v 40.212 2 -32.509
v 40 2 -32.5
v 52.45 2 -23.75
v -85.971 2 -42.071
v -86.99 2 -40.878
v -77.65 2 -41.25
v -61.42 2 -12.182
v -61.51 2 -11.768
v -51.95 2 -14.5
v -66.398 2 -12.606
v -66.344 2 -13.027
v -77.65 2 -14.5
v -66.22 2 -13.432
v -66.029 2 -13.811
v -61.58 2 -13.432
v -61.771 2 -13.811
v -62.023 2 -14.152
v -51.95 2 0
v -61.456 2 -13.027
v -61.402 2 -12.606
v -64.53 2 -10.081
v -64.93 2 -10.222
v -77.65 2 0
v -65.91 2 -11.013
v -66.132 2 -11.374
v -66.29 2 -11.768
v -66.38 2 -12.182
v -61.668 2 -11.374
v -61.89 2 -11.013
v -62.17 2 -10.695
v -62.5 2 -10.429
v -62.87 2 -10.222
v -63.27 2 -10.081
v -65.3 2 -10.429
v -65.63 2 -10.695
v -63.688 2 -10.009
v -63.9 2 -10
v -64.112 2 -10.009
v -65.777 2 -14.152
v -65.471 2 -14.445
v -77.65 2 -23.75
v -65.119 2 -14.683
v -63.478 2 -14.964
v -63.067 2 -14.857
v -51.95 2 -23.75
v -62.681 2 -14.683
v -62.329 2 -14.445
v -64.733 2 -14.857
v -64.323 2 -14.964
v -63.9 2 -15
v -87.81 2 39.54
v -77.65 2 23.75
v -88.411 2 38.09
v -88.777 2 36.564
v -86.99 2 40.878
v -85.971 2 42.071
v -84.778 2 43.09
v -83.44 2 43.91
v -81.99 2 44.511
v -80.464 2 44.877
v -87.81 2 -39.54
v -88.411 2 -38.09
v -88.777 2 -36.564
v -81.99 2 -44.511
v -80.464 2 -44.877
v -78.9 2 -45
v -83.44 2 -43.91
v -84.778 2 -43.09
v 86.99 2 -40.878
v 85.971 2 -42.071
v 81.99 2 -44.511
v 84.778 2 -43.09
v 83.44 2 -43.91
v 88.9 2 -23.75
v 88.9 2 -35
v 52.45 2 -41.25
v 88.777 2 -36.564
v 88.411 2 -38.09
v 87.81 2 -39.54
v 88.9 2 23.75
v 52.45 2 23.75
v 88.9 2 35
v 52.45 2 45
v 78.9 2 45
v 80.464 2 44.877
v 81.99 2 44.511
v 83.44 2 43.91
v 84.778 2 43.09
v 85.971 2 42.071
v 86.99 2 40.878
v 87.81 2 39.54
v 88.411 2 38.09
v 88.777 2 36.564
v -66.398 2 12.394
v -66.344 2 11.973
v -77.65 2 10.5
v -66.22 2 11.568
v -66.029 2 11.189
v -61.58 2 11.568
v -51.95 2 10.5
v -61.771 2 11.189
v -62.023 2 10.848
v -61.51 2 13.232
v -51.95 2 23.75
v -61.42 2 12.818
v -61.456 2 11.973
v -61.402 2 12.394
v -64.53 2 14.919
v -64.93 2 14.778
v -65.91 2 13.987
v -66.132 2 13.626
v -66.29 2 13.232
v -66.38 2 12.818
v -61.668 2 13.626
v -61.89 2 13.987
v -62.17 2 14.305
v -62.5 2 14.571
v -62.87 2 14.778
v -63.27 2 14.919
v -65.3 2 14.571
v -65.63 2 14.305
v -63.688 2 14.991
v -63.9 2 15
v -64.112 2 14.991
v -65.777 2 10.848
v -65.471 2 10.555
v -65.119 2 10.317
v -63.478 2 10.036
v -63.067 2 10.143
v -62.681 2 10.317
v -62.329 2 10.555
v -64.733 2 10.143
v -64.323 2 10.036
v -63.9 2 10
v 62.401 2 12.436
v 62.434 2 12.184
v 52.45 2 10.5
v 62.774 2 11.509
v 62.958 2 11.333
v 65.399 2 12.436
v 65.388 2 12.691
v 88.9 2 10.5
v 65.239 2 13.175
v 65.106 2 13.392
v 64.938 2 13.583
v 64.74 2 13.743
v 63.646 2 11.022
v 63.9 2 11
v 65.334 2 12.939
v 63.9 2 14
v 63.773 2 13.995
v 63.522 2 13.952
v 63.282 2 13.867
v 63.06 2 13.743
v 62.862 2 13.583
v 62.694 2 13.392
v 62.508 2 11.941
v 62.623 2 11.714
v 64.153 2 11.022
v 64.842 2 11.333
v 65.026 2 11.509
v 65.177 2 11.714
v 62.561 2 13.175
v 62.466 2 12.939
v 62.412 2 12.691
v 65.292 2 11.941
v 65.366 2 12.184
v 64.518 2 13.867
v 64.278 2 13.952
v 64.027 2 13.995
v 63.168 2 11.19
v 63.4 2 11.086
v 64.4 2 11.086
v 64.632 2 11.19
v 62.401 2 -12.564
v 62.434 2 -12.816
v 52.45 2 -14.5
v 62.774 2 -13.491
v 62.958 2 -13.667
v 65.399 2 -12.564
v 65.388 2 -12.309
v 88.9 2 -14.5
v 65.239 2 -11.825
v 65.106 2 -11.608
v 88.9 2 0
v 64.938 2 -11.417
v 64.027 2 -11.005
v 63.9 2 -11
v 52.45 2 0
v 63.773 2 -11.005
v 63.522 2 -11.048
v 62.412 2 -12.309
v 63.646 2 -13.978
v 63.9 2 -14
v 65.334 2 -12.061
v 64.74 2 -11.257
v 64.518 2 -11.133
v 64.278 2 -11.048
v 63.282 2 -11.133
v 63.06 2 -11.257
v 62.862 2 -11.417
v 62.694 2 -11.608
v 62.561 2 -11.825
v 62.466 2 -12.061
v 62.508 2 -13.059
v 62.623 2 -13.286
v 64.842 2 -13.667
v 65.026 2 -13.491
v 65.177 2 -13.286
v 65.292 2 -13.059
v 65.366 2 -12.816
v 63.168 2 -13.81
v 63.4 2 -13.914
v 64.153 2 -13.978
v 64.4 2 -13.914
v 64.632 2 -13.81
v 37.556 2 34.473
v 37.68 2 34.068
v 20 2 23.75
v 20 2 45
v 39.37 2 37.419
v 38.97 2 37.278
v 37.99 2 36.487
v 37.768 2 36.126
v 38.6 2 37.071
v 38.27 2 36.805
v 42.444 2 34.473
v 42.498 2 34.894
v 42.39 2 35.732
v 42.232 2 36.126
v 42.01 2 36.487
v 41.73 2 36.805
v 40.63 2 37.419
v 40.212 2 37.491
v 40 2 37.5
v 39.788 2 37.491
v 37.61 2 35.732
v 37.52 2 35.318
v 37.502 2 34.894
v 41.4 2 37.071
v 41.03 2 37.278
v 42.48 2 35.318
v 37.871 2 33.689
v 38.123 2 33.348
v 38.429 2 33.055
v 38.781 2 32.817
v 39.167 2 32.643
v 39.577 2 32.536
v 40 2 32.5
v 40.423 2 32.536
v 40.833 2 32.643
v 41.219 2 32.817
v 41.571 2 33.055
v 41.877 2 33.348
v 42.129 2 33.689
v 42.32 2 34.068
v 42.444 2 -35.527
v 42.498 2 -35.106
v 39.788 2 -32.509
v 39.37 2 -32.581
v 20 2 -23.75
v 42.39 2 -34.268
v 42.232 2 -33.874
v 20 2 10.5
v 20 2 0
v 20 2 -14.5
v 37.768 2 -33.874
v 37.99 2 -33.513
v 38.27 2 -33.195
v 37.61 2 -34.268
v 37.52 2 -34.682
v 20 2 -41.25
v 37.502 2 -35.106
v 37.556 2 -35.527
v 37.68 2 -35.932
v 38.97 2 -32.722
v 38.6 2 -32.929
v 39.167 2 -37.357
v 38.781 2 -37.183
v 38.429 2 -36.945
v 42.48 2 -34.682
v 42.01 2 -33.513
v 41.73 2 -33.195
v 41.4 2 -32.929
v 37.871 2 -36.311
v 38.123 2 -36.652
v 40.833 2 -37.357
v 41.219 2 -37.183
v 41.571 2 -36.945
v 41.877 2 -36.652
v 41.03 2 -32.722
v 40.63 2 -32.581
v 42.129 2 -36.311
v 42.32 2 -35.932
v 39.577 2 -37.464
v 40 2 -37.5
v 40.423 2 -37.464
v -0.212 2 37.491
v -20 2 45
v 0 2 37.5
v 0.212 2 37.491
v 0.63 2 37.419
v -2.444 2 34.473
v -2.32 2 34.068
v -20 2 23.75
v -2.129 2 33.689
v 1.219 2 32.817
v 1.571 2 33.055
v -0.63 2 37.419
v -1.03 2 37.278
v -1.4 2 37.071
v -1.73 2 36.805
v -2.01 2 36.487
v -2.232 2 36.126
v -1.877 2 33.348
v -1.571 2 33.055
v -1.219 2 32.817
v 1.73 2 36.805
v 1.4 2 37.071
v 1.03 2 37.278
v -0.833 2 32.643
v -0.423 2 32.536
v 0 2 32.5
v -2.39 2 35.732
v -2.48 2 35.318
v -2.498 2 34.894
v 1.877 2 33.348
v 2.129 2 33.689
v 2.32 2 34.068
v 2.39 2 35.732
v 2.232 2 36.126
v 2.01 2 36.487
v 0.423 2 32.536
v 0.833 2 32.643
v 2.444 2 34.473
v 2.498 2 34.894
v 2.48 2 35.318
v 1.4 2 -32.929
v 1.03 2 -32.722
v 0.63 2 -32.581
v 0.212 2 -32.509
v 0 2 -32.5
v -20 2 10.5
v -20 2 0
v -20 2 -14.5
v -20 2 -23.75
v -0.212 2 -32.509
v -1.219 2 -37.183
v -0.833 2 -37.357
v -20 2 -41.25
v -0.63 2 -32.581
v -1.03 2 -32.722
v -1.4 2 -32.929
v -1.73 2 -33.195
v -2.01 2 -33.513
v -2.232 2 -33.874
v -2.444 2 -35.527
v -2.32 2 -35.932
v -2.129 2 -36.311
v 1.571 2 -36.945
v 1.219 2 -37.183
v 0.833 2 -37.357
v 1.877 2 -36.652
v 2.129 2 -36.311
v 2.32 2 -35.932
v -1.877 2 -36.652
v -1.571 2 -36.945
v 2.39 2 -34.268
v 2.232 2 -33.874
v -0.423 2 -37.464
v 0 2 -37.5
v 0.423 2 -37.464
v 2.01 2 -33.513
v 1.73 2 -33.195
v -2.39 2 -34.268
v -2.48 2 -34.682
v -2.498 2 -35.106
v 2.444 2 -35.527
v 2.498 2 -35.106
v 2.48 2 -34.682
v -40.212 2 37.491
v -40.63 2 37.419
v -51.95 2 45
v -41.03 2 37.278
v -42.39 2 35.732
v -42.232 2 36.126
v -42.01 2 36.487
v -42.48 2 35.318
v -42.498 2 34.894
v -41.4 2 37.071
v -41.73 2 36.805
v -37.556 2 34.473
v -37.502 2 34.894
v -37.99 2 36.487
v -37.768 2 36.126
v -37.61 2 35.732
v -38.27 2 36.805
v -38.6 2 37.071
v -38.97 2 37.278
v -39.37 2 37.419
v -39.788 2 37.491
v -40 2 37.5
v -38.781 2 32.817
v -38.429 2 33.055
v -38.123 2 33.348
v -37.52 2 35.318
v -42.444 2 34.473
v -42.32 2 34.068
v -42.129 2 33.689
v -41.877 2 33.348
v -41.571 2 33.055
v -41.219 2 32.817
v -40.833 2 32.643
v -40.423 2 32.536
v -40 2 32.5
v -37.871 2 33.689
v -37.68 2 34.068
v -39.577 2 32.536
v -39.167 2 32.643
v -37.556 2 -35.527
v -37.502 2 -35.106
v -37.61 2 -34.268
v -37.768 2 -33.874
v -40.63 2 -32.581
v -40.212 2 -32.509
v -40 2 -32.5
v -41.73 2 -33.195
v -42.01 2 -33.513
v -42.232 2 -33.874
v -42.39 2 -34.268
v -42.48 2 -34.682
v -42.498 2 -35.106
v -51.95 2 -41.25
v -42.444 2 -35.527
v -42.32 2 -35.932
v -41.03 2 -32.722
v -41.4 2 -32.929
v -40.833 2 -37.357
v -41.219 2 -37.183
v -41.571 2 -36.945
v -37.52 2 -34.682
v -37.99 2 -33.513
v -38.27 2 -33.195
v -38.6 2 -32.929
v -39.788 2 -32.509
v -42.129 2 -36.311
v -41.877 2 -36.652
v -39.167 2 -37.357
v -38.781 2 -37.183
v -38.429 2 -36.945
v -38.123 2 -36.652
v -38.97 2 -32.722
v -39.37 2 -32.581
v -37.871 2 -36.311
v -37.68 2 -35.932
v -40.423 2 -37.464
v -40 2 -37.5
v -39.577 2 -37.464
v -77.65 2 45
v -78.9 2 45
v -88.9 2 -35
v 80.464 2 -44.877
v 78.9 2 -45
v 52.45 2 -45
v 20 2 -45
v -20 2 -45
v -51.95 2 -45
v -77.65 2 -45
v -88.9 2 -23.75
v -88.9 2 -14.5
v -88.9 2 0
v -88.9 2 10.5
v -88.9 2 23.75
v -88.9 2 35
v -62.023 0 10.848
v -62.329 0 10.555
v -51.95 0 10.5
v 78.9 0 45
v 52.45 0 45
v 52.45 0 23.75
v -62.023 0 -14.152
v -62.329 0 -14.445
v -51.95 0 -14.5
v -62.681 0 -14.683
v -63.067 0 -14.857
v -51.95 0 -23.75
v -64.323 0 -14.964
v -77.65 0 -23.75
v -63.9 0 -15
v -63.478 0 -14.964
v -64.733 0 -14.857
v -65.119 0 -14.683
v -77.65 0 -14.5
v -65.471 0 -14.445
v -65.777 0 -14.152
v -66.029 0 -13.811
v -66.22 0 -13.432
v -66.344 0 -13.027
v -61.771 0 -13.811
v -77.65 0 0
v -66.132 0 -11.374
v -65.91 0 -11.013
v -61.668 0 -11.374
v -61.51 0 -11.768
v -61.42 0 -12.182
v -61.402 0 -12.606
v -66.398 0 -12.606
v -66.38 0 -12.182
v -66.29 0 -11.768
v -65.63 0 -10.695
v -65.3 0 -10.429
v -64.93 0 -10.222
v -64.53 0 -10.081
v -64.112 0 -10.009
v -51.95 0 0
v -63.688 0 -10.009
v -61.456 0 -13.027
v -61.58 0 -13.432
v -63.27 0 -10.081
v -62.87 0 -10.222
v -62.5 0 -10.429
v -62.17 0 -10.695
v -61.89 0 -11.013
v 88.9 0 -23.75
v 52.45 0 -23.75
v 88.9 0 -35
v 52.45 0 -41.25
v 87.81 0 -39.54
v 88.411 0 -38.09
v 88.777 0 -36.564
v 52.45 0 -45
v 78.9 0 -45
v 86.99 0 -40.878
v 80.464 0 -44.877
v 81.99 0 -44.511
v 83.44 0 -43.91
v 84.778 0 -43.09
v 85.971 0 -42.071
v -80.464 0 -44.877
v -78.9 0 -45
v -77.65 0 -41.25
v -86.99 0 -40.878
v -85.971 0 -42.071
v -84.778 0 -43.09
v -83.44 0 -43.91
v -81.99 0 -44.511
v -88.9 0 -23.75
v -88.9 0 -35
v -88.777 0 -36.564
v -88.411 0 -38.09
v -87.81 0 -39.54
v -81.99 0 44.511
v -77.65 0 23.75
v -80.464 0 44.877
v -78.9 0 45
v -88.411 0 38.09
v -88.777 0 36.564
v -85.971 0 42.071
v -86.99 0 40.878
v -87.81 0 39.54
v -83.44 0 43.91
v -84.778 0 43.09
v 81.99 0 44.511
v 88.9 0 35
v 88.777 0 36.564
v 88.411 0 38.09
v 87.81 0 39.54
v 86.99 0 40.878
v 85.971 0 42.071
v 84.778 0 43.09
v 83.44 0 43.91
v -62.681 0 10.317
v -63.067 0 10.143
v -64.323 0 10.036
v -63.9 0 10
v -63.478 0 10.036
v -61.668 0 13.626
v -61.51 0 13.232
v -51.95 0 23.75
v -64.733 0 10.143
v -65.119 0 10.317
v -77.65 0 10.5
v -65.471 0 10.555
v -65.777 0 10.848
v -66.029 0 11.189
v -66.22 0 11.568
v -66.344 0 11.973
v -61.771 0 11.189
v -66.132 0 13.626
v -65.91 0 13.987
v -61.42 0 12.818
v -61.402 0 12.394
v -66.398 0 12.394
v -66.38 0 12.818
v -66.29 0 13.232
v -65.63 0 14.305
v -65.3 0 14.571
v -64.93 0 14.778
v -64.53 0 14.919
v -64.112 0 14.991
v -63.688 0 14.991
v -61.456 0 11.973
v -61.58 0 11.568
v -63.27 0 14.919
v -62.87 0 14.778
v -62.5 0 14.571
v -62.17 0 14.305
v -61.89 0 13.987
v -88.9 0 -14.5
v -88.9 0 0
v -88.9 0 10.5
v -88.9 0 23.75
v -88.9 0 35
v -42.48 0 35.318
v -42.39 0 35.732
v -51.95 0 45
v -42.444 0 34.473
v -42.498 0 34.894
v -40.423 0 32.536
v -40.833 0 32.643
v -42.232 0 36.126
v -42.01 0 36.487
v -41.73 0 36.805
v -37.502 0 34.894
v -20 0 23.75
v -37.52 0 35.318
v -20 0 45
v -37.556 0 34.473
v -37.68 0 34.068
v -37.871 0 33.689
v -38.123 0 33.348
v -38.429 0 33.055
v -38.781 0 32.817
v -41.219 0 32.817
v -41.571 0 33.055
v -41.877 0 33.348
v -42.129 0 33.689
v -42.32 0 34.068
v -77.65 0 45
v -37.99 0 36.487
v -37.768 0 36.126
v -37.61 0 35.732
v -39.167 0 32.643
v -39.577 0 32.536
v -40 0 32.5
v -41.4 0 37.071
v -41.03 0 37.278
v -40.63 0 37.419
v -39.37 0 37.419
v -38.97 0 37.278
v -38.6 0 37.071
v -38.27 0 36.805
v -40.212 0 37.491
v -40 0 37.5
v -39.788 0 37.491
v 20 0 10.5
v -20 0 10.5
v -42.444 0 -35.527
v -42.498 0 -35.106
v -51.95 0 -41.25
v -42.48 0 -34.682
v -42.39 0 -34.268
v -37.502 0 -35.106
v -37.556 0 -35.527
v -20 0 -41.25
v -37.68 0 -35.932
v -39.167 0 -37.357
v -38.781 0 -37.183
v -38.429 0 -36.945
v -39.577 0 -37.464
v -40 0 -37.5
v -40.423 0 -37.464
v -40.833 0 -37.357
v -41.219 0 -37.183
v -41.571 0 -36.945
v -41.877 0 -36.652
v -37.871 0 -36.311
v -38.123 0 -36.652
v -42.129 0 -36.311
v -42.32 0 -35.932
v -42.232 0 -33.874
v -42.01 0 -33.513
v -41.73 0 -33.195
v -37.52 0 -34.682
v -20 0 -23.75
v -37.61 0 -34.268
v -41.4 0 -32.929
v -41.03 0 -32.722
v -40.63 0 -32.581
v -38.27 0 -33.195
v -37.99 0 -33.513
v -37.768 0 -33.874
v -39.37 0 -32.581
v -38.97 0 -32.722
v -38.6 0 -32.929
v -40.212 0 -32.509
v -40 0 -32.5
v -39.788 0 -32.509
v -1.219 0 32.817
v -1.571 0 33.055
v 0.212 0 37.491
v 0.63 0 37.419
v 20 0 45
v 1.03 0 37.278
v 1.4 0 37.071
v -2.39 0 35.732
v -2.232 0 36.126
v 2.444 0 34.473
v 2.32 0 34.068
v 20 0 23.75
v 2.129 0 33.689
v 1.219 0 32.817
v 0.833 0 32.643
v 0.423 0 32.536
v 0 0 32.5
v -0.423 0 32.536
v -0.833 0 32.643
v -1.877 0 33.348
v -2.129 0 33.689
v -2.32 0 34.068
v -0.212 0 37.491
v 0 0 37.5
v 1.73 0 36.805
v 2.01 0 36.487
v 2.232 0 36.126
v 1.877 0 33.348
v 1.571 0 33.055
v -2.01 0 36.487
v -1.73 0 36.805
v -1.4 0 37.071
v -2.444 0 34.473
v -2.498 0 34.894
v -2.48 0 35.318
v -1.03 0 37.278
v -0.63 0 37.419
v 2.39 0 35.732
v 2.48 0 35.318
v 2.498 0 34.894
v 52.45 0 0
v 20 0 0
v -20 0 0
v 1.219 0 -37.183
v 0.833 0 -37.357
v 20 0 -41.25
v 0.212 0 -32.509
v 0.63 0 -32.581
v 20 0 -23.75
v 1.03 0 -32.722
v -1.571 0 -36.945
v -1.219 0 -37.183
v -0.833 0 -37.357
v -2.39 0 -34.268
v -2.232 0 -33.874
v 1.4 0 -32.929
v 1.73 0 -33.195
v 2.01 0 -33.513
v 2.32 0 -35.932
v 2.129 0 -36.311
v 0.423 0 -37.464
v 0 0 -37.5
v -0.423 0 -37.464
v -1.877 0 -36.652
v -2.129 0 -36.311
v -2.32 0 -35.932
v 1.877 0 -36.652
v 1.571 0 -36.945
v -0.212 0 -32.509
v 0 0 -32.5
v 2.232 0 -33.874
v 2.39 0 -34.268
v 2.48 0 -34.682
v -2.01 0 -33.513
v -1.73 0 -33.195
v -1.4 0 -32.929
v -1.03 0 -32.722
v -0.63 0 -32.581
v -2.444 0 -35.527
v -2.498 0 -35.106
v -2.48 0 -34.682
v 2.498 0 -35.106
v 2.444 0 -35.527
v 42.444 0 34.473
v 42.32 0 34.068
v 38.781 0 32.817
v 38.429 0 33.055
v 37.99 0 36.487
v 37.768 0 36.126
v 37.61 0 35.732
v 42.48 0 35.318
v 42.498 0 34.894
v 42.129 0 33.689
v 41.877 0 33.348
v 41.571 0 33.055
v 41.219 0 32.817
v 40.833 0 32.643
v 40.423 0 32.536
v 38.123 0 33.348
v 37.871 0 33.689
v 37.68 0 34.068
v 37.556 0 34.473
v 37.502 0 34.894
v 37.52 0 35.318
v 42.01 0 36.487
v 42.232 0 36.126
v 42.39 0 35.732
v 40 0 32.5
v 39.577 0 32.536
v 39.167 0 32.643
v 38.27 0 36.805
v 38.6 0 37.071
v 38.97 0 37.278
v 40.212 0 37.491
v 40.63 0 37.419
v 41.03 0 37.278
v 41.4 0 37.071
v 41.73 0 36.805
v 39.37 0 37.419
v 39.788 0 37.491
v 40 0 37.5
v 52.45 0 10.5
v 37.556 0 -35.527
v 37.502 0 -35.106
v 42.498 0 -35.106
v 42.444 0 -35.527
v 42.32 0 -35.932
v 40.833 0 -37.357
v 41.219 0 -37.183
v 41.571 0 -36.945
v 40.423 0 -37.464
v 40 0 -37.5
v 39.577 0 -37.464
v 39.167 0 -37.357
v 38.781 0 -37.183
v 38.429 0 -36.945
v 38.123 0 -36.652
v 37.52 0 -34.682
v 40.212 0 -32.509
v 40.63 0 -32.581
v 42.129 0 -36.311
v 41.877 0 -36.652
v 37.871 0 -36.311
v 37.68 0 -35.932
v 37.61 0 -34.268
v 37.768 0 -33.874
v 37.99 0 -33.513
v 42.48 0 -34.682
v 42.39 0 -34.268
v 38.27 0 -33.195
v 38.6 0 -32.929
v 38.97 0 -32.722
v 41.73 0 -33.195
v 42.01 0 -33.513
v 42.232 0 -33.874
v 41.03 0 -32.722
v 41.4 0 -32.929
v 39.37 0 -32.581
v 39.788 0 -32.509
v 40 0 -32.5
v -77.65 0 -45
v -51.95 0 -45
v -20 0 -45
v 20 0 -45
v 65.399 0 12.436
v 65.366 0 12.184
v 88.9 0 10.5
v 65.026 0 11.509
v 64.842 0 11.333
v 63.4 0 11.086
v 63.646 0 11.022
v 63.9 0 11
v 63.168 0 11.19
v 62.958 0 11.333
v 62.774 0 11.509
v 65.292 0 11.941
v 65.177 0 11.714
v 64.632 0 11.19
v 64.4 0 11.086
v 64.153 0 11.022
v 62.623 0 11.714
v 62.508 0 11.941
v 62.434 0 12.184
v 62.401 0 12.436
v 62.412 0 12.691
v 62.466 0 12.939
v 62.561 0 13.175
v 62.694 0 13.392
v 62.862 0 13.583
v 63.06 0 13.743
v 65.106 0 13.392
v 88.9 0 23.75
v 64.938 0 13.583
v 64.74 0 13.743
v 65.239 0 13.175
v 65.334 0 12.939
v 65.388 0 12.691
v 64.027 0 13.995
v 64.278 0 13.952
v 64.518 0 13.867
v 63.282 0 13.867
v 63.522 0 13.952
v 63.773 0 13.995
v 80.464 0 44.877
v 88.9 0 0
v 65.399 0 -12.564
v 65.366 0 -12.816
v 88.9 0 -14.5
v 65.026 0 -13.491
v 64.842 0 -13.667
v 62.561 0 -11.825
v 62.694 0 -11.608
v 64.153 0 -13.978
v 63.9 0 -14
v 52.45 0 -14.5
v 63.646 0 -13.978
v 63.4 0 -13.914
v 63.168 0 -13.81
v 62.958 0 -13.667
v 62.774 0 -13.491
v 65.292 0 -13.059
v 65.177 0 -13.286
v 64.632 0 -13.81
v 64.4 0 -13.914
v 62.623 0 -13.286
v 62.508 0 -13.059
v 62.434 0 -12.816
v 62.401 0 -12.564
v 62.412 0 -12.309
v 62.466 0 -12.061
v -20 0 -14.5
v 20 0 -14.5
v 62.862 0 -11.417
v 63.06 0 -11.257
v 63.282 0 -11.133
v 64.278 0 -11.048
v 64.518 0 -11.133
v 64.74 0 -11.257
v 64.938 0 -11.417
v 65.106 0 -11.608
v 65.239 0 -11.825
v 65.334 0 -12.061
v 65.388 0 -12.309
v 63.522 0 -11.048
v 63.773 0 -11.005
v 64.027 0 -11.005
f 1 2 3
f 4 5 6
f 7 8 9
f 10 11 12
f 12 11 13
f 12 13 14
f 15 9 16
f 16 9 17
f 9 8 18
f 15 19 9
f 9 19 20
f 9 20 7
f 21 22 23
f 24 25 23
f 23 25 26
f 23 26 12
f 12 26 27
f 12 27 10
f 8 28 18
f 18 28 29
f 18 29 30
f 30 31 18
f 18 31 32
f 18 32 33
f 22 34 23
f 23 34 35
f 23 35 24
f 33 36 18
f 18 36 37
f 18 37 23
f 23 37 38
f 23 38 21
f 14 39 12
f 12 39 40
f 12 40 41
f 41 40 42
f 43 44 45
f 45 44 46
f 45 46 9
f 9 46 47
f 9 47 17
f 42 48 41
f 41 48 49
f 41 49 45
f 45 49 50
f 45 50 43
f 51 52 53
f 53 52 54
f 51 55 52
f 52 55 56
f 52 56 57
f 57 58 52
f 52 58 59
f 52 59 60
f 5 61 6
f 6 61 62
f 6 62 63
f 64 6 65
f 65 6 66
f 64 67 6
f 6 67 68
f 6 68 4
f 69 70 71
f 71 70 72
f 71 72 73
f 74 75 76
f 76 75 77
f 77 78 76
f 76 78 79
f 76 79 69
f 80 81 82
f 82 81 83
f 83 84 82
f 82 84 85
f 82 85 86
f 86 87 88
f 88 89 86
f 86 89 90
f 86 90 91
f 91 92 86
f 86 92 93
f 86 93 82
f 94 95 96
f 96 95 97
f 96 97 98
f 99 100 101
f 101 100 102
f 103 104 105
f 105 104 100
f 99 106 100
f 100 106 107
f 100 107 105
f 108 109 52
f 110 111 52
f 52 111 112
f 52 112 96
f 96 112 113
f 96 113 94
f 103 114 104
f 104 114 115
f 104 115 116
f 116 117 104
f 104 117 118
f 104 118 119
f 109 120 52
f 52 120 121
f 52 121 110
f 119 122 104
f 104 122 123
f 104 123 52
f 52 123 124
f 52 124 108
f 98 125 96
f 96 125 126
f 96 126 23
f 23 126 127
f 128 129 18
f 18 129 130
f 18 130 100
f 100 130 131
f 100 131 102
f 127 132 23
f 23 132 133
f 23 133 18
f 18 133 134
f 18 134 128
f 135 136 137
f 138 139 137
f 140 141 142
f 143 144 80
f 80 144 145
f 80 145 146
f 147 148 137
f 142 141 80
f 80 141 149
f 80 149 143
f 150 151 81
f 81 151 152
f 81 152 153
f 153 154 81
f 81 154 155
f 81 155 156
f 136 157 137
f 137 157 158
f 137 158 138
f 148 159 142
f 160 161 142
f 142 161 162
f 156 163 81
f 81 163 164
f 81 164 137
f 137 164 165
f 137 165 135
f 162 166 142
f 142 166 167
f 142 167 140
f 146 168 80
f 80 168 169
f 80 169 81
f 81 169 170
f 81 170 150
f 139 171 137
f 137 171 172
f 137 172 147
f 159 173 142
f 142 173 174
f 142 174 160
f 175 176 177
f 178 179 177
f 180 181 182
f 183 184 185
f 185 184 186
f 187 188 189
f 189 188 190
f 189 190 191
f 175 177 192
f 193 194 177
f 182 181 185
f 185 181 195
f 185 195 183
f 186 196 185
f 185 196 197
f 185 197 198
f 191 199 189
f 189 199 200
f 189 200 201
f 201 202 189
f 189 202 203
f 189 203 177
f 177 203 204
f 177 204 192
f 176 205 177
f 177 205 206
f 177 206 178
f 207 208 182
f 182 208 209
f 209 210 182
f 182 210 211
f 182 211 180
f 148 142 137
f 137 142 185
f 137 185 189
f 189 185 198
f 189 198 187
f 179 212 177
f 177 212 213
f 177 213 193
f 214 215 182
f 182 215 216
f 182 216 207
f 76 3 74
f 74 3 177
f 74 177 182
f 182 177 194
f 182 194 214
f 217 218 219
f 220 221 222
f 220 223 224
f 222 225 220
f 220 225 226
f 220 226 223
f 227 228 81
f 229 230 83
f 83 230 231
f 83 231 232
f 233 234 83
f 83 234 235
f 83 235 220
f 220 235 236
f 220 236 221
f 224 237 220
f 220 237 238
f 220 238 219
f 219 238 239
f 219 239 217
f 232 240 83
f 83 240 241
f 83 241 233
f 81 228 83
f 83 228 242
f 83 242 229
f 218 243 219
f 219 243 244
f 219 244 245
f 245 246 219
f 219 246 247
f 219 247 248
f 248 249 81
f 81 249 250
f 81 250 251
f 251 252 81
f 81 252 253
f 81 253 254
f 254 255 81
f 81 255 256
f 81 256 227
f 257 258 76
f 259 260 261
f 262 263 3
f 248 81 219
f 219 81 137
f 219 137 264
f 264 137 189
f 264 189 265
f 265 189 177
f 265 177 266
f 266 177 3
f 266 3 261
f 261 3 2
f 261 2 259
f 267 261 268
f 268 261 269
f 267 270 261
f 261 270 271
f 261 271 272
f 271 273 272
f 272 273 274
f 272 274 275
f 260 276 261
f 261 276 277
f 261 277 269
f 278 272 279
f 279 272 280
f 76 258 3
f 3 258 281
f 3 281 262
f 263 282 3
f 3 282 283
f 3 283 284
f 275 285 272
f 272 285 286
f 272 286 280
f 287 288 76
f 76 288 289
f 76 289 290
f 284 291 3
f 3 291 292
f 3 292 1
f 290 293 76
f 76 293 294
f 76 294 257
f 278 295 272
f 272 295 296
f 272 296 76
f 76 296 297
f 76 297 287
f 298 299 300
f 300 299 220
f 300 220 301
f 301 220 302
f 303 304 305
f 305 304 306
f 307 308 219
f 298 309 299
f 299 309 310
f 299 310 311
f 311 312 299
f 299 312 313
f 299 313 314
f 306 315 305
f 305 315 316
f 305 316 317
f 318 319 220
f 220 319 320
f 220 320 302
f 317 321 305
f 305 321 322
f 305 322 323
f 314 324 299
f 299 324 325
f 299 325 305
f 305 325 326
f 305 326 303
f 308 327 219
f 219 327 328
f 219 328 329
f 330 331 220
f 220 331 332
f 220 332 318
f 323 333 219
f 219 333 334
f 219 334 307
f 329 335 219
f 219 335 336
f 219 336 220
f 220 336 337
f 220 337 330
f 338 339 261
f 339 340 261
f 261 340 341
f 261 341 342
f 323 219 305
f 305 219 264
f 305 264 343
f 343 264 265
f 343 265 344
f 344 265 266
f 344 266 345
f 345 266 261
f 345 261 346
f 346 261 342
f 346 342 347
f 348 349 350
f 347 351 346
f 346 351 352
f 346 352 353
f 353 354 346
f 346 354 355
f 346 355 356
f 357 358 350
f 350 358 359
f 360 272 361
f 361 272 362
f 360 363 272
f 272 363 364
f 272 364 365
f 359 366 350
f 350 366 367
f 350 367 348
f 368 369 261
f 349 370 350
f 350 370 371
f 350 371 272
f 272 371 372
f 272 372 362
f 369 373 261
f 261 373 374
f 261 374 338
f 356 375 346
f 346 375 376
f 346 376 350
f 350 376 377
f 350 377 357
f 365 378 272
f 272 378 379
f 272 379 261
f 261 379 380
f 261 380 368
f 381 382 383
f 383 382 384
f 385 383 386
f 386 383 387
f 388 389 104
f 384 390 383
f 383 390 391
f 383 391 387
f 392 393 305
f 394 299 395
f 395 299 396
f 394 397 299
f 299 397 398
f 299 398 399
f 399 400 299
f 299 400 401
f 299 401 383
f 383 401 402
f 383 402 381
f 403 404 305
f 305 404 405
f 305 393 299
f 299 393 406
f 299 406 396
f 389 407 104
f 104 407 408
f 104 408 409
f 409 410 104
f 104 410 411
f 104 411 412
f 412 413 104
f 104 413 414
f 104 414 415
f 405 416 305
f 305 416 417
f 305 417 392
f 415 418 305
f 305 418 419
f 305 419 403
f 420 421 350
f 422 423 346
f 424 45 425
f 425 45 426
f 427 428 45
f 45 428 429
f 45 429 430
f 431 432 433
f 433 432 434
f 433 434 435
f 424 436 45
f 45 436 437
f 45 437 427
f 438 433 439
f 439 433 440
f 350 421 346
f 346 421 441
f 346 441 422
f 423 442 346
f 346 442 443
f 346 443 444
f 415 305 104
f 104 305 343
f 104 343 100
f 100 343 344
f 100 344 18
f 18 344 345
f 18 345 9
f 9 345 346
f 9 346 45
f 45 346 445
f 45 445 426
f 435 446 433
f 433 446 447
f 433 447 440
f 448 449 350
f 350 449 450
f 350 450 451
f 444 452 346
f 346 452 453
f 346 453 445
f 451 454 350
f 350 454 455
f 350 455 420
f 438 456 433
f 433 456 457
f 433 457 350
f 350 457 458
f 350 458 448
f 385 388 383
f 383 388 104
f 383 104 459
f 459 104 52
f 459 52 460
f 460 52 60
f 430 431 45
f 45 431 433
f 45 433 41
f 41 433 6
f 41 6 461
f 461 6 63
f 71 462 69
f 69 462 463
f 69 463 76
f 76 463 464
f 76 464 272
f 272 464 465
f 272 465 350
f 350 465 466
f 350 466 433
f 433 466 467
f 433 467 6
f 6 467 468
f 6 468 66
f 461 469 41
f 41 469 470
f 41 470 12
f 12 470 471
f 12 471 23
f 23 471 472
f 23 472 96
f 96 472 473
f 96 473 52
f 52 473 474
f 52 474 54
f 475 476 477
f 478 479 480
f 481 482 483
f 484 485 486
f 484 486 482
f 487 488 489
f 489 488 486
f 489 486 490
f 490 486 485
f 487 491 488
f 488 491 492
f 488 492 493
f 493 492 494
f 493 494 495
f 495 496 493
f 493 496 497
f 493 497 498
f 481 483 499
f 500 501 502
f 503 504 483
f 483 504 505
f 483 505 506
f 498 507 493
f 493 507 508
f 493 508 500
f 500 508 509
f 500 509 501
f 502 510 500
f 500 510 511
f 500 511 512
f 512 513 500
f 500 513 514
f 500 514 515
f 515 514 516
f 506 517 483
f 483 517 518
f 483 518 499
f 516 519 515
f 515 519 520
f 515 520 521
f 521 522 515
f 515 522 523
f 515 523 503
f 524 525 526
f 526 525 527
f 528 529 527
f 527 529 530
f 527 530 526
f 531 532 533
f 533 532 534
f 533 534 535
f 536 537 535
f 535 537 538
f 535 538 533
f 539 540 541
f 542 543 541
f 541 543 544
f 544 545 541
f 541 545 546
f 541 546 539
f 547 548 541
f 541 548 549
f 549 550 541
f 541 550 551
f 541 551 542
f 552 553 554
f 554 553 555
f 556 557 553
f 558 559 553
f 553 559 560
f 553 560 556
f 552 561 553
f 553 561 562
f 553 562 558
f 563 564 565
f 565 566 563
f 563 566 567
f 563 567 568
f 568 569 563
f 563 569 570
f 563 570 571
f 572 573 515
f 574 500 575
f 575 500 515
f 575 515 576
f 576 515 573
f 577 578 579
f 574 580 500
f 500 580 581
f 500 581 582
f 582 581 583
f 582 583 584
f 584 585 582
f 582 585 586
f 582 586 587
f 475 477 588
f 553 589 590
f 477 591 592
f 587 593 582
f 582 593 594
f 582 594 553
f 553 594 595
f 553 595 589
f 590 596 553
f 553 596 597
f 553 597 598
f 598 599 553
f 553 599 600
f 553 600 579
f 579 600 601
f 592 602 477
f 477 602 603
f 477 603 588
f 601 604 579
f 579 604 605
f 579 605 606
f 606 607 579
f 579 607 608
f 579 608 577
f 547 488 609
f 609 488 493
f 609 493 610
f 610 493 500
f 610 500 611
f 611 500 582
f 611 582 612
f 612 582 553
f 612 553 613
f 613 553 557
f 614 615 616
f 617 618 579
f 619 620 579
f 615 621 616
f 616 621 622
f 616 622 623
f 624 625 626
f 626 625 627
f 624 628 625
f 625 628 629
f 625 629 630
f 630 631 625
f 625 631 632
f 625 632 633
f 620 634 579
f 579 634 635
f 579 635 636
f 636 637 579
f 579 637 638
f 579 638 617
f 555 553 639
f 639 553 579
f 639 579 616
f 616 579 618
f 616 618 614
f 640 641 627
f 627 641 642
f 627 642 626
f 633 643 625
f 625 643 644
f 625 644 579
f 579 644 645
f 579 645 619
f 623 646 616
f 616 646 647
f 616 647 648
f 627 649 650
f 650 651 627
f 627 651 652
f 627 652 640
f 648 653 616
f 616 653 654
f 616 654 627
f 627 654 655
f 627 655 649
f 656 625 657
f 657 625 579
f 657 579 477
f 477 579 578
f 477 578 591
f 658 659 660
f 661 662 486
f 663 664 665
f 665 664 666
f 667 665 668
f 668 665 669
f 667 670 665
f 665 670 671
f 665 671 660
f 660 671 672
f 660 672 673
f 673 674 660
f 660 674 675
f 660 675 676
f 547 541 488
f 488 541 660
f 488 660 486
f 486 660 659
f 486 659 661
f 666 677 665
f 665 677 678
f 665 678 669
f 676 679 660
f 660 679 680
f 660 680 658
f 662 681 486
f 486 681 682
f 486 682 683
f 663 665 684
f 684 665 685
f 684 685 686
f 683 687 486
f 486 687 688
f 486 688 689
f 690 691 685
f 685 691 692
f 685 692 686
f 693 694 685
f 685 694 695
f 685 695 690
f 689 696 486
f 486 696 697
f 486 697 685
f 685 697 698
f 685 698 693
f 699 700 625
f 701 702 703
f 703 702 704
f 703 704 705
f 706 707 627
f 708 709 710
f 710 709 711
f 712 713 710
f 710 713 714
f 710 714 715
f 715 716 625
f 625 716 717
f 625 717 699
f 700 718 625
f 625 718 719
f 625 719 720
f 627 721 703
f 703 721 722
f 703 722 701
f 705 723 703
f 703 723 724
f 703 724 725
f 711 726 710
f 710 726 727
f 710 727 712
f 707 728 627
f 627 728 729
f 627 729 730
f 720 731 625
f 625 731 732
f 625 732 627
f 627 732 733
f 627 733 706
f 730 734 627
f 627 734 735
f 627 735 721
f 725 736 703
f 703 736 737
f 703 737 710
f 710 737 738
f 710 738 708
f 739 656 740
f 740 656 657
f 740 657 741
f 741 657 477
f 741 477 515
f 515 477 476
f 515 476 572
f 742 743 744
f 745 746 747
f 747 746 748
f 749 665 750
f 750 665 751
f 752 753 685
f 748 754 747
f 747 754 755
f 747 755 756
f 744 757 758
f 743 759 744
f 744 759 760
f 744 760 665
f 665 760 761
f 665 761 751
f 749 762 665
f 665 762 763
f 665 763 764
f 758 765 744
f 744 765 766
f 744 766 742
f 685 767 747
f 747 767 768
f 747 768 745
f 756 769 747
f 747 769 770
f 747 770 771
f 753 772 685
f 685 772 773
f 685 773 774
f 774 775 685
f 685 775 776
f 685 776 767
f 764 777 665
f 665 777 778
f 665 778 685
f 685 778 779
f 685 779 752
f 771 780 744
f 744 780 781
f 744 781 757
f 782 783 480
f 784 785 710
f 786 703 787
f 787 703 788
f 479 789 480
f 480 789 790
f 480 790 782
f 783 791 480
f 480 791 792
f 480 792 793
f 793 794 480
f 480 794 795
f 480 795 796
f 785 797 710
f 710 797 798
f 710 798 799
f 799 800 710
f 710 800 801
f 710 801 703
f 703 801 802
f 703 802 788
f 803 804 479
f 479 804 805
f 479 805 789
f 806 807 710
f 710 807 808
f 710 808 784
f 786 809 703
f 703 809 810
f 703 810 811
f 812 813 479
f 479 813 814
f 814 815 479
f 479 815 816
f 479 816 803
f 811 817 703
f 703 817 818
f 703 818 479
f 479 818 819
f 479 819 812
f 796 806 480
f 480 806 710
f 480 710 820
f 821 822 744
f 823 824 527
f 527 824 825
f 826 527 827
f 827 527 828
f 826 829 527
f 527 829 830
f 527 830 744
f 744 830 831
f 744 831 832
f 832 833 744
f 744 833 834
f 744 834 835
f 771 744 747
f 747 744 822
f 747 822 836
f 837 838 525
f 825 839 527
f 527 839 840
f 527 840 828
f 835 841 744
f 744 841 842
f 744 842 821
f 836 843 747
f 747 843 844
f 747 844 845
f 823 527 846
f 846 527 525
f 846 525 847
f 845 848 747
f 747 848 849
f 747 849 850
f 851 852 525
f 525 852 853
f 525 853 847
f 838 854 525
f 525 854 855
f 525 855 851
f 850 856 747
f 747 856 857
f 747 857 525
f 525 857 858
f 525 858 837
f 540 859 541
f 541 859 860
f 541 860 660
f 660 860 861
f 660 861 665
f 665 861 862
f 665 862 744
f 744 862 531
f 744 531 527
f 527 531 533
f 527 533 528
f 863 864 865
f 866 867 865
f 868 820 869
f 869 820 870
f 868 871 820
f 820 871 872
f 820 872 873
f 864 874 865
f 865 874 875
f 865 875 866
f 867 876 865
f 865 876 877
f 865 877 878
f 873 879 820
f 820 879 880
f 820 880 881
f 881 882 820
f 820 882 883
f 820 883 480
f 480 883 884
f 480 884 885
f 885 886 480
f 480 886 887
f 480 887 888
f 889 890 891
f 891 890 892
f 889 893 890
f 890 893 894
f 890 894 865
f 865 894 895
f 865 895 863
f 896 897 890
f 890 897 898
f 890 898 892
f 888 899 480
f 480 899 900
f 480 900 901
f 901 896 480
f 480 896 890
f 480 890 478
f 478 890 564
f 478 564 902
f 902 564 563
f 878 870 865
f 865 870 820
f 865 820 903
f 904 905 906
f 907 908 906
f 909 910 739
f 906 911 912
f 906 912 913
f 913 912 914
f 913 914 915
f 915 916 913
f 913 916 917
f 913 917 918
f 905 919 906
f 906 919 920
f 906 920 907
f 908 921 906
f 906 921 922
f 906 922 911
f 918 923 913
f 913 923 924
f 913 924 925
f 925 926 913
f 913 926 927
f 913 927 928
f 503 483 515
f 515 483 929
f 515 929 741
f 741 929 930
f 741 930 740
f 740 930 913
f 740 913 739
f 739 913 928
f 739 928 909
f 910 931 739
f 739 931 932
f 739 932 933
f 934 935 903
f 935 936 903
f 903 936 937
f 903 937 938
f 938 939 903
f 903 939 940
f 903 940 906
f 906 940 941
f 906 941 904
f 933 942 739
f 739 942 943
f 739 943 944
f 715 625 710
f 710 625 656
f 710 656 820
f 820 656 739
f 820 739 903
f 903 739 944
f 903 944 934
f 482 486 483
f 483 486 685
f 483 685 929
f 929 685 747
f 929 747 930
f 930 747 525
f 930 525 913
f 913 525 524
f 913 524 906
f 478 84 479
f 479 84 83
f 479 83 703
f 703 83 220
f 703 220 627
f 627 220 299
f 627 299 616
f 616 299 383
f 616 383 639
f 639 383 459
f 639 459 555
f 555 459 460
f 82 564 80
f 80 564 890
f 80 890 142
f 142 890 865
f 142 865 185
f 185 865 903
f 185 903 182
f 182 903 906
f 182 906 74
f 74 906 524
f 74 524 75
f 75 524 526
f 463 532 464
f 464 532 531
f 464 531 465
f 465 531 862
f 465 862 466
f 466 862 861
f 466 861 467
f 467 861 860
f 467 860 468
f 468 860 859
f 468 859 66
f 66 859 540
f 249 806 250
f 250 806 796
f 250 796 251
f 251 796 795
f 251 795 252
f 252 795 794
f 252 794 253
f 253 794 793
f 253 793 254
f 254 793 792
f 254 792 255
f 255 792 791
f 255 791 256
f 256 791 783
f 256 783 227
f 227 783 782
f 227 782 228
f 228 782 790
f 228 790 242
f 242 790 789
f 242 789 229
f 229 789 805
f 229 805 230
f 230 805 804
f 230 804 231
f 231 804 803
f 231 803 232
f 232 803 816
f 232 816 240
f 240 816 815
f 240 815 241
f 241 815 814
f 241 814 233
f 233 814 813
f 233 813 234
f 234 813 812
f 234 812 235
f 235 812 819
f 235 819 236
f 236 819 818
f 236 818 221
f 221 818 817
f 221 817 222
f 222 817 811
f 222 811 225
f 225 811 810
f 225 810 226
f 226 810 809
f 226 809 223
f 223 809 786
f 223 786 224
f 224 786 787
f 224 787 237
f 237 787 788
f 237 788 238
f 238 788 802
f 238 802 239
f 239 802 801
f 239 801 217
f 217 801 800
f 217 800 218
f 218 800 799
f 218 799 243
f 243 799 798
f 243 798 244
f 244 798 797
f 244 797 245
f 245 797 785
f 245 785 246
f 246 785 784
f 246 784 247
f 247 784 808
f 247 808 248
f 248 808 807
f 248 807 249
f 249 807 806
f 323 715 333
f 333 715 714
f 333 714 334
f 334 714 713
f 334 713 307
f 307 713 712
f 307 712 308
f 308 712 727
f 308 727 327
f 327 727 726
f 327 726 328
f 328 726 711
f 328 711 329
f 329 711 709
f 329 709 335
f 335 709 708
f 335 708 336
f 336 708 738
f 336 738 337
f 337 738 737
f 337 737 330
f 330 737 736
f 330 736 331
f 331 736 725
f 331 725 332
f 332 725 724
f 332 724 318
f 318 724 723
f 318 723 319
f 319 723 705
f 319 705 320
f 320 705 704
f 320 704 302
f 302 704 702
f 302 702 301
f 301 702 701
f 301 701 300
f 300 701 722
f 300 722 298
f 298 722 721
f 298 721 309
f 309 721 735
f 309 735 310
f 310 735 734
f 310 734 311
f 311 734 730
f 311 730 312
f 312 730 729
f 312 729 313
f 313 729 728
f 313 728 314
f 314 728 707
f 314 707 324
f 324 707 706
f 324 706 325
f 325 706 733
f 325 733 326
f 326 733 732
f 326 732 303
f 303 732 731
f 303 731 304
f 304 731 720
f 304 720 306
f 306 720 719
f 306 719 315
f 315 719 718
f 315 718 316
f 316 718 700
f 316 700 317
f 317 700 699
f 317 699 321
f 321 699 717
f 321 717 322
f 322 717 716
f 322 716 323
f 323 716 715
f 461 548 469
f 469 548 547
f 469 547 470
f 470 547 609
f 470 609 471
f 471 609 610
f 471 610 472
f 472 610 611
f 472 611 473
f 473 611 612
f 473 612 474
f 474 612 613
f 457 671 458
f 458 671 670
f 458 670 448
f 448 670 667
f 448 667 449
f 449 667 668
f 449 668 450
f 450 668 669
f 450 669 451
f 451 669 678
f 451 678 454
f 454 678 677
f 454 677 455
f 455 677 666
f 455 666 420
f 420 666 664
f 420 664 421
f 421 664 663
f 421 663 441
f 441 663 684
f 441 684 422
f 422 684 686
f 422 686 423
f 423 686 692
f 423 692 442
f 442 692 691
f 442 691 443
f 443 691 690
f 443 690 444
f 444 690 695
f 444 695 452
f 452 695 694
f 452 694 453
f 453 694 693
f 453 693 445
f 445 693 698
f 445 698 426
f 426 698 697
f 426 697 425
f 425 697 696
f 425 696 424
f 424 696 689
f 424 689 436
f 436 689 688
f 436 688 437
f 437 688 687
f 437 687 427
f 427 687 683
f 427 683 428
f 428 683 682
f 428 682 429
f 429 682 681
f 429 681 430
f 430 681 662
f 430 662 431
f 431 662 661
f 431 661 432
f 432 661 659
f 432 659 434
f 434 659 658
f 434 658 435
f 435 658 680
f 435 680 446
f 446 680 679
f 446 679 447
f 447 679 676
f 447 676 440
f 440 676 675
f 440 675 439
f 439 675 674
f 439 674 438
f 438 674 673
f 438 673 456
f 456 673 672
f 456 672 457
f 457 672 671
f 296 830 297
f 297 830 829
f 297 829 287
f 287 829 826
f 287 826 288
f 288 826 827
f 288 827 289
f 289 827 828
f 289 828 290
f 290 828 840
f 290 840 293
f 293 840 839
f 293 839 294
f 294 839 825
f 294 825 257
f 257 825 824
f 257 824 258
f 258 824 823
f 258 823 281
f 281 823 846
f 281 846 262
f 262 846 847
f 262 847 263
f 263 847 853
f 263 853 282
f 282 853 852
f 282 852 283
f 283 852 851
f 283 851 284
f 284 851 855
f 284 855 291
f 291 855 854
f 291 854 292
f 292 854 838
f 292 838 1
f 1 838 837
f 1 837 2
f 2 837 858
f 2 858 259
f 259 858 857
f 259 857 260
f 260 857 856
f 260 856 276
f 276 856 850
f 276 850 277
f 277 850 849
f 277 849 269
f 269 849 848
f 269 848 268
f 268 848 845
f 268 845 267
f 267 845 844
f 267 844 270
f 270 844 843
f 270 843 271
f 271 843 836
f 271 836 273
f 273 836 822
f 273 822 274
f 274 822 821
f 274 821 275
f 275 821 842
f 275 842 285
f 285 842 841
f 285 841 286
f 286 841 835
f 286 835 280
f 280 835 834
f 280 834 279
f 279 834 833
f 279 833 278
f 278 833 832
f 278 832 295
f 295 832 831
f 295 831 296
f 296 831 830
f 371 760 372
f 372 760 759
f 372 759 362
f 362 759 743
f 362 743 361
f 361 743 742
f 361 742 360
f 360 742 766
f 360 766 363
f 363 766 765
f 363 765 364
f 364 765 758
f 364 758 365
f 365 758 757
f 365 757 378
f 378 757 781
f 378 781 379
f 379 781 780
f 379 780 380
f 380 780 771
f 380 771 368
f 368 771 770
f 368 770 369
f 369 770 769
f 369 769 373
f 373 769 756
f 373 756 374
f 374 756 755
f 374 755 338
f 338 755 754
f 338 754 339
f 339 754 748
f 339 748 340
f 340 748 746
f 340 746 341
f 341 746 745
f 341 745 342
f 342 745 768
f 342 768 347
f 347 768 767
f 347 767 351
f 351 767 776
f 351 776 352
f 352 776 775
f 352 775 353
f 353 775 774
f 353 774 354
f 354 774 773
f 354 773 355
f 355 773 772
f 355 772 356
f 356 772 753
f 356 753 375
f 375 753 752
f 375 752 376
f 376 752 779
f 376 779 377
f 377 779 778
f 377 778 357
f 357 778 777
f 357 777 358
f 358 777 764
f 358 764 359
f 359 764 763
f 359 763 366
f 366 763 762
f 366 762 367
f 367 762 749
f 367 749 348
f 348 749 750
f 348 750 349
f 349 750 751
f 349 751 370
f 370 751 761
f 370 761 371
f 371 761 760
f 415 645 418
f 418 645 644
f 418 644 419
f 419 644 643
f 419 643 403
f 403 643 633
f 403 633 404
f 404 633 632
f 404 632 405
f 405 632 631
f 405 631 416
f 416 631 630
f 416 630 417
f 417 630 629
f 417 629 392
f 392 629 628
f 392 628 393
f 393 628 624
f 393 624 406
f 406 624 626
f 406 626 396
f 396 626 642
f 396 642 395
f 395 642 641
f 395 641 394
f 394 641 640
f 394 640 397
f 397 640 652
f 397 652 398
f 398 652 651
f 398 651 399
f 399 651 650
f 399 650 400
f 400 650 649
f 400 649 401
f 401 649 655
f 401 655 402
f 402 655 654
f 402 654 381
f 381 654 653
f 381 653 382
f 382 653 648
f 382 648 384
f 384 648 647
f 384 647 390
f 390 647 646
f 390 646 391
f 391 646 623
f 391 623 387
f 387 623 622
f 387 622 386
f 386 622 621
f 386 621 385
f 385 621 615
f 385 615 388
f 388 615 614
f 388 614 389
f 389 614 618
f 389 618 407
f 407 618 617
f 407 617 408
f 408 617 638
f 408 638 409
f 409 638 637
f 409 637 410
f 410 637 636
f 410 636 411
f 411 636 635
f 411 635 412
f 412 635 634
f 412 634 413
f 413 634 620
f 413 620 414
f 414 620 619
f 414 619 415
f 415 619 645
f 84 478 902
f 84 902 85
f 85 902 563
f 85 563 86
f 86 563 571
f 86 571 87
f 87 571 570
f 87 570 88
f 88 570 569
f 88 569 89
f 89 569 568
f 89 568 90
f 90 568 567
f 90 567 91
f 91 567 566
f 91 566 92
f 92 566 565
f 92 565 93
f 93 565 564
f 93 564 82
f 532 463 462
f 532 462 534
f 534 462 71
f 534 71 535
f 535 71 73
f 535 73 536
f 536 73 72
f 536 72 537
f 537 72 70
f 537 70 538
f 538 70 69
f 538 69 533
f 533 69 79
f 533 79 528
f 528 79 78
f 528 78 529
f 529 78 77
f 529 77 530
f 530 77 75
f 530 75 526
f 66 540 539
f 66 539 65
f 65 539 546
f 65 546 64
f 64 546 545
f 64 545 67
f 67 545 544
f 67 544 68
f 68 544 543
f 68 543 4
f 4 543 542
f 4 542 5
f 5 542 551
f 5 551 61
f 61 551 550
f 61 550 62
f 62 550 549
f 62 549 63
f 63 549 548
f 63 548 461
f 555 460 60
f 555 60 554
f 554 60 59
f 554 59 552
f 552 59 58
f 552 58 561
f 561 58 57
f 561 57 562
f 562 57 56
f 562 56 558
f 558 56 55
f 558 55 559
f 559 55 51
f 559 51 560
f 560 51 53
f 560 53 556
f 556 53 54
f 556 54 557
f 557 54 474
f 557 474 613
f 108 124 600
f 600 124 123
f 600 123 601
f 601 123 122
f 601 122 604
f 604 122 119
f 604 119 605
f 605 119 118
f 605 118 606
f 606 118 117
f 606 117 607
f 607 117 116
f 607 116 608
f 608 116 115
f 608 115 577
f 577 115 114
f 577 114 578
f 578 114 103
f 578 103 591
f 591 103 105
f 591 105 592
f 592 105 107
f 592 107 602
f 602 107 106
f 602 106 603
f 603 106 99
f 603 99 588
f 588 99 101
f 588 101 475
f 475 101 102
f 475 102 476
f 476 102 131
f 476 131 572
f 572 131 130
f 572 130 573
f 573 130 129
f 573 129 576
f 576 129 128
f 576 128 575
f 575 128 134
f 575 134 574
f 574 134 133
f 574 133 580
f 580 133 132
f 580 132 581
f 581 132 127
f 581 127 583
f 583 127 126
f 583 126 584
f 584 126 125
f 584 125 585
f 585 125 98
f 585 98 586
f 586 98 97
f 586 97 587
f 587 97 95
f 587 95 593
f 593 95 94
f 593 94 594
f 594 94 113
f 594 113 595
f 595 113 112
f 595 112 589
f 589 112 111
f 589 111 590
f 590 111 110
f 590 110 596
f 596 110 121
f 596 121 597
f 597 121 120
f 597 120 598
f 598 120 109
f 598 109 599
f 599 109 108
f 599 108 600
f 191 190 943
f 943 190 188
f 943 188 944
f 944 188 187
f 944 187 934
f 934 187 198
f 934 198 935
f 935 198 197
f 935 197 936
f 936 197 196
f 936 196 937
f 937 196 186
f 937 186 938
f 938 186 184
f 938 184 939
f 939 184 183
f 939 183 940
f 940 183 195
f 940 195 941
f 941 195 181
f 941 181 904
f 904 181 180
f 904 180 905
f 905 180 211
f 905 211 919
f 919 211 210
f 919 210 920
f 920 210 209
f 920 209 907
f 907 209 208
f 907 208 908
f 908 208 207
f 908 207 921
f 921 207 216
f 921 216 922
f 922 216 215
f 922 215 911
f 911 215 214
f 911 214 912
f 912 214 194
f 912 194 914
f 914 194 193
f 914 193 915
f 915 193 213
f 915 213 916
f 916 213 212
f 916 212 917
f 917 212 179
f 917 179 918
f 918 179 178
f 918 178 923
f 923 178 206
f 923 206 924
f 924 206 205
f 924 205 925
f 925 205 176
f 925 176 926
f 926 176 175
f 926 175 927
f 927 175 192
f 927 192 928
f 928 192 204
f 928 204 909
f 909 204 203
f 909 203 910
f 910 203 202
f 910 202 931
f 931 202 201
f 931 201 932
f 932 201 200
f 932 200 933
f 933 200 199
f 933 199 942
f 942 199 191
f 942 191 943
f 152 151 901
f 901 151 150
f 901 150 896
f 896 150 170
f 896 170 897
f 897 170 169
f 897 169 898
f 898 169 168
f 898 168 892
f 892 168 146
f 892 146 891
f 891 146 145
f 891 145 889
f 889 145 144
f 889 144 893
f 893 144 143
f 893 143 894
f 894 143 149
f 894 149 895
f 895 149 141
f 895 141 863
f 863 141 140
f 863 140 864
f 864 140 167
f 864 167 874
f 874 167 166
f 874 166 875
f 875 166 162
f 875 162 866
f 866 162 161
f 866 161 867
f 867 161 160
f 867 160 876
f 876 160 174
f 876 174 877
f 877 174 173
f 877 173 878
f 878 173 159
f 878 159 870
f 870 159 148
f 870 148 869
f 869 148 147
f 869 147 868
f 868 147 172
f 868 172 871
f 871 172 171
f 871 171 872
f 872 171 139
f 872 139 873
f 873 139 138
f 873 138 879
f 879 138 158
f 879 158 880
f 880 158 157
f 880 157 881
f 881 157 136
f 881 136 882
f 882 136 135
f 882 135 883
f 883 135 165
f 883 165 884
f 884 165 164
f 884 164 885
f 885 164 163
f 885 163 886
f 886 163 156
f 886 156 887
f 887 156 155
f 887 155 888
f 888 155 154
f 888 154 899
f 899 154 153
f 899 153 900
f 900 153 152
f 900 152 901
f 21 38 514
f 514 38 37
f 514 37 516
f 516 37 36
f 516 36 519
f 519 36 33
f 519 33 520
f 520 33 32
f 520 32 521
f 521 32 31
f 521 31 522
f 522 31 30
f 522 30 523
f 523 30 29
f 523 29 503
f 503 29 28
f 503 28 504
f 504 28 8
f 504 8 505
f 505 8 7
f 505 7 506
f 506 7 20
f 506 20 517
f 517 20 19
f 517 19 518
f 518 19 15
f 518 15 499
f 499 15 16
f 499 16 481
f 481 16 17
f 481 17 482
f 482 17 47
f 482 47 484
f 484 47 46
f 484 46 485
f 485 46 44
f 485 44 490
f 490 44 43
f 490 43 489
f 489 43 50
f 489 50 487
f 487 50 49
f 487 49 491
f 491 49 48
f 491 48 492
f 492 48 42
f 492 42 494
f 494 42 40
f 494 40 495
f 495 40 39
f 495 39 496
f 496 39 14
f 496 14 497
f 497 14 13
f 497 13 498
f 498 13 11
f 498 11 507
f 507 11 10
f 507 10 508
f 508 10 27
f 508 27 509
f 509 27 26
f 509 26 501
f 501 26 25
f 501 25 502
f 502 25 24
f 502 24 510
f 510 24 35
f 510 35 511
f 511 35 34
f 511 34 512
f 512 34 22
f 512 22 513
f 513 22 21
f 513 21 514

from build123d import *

# Parameters (mm, degrees)
SKETCH1_W           = 177.8
SKETCH1_H           = 90
SKETCH1_R           = 2.5
BOSS_EXTRUDE1_DEPTH = 2
FILLET1_R           = 10
SKETCH2_R           = 2.5
SKETCH2_R_2         = 1.5
CUT_EXTRUDE1_DEPTH  = 2


with BuildPart() as part:
    # Sketch1 → Boss-Extrude1 (new body)
    with BuildSketch(Plane(origin=(0, 0, 0), x_dir=(1, 0, 0), z_dir=(0, 1, 0))):
        Rectangle(SKETCH1_W, SKETCH1_H)
        with Locations((0, 35)):
            Circle(SKETCH1_R, mode=Mode.SUBTRACT)
        with Locations((0, -35)):
            Circle(SKETCH1_R, mode=Mode.SUBTRACT)
        with Locations((40, 35)):
            Circle(SKETCH1_R, mode=Mode.SUBTRACT)
        with Locations((40, -35)):
            Circle(SKETCH1_R, mode=Mode.SUBTRACT)
        with Locations((-40, 35)):
            Circle(SKETCH1_R, mode=Mode.SUBTRACT)
        with Locations((-40, -35)):
            Circle(SKETCH1_R, mode=Mode.SUBTRACT)
    extrude(amount=BOSS_EXTRUDE1_DEPTH)

    # Fillet1
    fillet1_edges = [part.edges().sort_by_distance(p)[0] for p in [
        (-88.9, 1, 45),
        (-88.9, 1, -45),
        (88.9, 1, -45),
        (88.9, 1, 45),
    ]]
    fillet(fillet1_edges, radius=FILLET1_R)

    # Sketch2 → Cut-Extrude1 (cut)
    with BuildSketch(Plane.XZ):
        with Locations((-63.9, 12.5)):
            Circle(SKETCH2_R)
        with Locations((-63.9, -12.5)):
            Circle(SKETCH2_R)
        with Locations((63.9, 12.5)):
            Circle(SKETCH2_R_2)
        with Locations((63.9, -12.5)):
            Circle(SKETCH2_R_2)
    extrude(amount=-CUT_EXTRUDE1_DEPTH, mode=Mode.SUBTRACT)


solid = part.part
